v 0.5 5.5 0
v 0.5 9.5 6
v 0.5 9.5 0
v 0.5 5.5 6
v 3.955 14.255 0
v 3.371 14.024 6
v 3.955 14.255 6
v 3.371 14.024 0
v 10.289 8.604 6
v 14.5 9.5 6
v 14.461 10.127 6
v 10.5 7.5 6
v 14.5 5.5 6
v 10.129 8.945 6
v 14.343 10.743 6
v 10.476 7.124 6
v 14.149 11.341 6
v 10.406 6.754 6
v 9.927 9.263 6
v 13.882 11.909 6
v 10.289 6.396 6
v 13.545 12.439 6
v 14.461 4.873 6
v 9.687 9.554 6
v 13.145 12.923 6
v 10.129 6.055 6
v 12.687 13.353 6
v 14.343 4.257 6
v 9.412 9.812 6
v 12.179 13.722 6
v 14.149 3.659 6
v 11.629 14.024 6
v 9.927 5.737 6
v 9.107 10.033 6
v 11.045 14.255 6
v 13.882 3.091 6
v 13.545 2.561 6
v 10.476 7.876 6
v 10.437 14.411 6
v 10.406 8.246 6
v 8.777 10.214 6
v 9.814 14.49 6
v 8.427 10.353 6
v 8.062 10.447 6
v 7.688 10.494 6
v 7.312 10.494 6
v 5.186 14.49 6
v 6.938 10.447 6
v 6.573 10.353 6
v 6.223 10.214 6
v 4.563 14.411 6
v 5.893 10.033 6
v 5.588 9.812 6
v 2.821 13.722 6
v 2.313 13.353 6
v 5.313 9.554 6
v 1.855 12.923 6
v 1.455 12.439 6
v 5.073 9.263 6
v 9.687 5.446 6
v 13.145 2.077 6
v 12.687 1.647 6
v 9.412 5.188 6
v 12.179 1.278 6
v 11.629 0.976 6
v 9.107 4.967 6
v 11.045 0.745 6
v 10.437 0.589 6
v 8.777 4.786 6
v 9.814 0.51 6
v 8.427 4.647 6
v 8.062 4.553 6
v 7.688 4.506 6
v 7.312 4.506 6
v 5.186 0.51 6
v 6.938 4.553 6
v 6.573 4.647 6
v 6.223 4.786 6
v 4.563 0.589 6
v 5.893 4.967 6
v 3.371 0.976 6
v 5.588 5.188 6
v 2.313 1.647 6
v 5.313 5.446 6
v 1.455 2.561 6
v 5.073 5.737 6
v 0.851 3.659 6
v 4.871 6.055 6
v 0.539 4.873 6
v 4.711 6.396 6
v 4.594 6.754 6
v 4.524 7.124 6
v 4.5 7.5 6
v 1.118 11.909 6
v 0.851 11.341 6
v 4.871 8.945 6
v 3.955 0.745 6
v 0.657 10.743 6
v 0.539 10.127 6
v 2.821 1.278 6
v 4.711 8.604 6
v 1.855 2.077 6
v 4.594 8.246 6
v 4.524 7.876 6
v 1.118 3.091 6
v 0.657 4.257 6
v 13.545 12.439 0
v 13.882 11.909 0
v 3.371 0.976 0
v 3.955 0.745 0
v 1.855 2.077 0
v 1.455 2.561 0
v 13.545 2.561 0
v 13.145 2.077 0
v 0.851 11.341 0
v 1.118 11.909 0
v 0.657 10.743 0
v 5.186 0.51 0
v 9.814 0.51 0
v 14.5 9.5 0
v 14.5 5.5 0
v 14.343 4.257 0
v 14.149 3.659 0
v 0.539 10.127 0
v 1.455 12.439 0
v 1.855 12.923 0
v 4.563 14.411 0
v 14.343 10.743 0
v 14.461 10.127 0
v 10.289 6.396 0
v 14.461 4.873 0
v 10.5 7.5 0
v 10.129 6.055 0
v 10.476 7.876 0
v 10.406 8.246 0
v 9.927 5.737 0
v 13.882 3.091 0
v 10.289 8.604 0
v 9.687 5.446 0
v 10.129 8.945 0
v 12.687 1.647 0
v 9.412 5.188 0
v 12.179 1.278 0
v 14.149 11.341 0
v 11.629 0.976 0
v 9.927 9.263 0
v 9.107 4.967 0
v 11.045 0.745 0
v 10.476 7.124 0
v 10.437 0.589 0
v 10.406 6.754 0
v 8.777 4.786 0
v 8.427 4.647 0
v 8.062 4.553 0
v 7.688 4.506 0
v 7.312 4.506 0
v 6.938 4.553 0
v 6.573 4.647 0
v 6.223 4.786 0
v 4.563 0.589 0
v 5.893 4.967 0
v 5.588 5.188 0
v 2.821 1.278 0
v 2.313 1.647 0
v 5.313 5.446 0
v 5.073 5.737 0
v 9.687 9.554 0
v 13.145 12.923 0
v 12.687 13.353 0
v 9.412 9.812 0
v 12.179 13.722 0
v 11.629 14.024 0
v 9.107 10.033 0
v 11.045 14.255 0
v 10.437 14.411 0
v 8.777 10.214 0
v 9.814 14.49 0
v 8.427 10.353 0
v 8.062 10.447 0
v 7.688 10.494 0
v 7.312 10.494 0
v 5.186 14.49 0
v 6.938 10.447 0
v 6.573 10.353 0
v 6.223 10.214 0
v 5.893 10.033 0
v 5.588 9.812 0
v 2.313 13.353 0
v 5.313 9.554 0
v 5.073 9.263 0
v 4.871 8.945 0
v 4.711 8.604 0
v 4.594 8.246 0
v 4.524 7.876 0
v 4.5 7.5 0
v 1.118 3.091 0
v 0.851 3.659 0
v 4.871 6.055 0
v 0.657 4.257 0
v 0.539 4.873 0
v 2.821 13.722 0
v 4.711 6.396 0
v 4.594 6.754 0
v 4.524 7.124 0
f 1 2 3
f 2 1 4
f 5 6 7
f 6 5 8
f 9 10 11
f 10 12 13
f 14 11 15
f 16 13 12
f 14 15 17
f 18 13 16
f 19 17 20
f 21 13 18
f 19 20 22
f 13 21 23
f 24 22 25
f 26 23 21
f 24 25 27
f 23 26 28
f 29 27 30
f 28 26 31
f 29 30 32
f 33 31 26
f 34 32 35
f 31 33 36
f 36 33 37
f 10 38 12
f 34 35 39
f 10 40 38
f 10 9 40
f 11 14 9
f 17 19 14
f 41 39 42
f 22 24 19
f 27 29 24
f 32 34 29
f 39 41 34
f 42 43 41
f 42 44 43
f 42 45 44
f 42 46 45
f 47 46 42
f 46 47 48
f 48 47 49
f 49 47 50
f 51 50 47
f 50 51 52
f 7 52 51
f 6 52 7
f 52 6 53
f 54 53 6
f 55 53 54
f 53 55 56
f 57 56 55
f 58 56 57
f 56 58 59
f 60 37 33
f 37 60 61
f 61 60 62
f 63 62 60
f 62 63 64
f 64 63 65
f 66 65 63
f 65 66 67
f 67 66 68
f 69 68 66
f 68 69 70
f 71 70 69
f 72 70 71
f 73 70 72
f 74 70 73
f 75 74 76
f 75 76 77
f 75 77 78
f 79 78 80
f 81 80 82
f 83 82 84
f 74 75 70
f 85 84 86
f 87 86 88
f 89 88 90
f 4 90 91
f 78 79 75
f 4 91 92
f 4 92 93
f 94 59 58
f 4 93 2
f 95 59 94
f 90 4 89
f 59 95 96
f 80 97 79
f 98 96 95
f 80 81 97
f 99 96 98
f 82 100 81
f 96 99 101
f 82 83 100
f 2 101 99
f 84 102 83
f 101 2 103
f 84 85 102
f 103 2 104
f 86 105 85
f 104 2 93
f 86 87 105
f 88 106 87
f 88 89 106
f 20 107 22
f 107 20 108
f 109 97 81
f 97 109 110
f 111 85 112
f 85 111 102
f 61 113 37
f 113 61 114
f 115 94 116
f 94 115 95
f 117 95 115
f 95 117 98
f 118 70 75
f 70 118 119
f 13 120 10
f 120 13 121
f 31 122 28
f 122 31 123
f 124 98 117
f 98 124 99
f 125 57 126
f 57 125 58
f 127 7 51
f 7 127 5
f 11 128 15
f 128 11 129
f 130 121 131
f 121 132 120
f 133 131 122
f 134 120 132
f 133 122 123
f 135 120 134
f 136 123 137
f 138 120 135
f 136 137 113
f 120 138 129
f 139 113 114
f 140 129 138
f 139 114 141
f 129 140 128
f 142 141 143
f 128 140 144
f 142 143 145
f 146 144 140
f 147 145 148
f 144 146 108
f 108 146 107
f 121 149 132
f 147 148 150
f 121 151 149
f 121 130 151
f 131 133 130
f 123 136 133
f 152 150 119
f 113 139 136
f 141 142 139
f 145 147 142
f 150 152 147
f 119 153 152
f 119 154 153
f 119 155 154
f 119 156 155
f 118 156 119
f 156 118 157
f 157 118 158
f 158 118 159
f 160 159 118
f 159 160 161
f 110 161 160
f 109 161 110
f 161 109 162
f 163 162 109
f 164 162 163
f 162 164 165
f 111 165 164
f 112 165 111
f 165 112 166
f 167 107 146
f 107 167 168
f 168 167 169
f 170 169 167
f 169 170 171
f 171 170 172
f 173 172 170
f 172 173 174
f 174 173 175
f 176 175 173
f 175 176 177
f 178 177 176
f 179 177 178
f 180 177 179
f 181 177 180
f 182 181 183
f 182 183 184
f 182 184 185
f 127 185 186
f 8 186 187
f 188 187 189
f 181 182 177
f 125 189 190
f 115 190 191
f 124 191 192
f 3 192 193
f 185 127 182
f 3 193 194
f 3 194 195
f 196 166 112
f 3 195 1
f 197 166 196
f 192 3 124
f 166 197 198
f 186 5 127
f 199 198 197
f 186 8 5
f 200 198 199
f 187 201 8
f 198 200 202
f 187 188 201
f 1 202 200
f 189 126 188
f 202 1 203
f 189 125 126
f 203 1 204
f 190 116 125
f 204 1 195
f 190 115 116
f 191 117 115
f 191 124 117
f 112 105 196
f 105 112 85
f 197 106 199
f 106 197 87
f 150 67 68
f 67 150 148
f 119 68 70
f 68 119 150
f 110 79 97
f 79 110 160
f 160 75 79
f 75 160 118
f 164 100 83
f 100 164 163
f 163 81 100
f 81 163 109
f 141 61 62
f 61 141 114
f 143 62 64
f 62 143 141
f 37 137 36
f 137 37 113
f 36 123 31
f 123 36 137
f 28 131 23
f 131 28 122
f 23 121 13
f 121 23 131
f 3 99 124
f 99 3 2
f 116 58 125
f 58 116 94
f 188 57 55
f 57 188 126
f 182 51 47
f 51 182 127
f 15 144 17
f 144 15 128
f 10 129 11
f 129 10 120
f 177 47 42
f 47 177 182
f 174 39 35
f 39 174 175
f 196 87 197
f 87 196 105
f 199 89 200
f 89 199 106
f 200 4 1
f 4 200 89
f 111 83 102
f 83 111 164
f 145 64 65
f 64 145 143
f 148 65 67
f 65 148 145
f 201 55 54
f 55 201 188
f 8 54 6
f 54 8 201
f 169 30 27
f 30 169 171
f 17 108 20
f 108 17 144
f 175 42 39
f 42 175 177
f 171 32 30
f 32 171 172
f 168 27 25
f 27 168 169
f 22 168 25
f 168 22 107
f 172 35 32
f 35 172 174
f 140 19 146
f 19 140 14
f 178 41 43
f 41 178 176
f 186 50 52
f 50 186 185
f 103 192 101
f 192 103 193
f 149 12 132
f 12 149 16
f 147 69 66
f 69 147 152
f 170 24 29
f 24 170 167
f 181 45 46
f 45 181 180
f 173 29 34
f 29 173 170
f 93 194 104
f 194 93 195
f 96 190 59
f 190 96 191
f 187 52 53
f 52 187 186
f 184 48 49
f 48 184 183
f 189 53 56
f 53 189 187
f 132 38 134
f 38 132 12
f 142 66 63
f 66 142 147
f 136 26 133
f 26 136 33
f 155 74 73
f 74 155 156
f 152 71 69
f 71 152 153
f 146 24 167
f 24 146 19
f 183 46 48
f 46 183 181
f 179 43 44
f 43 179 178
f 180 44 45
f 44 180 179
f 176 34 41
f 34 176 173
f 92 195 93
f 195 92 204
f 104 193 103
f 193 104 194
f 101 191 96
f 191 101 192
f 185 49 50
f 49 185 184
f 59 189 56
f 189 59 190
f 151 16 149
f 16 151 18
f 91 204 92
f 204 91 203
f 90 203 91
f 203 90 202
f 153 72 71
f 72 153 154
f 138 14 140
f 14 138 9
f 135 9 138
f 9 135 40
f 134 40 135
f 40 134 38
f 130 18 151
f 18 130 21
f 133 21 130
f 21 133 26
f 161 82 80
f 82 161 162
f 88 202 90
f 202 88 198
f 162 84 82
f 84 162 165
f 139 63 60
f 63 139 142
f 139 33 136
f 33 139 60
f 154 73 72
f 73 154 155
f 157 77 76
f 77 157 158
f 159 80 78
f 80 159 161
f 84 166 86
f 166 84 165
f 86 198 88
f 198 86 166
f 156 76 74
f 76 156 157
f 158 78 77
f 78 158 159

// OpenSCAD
// Generated by SolidPython 1.1.3 on 2023-01-30 14:06:48
$fn = 50;


difference() {
	union() {
		translate(v = [7.5000000000, 7.5000000000, 0]) {
			rotate(a = [0, 0, 0]) {
				hull() {
					translate(v = [-2.0000000000, 2.0000000000, 0]) {
						rotate(a = [0, 0, 0]) {
							translate(v = [0, 0, 0]) {
								rotate(a = [0, 0, 0]) {
									cylinder(h = 6, r = 5);
								}
							}
						}
					}
					translate(v = [2.0000000000, 2.0000000000, 0]) {
						rotate(a = [0, 0, 0]) {
							translate(v = [0, 0, 0]) {
								rotate(a = [0, 0, 0]) {
									cylinder(h = 6, r = 5);
								}
							}
						}
					}
					translate(v = [-2.0000000000, -2.0000000000, 0]) {
						rotate(a = [0, 0, 0]) {
							translate(v = [0, 0, 0]) {
								rotate(a = [0, 0, 0]) {
									cylinder(h = 6, r = 5);
								}
							}
						}
					}
					translate(v = [2.0000000000, -2.0000000000, 0]) {
						rotate(a = [0, 0, 0]) {
							translate(v = [0, 0, 0]) {
								rotate(a = [0, 0, 0]) {
									cylinder(h = 6, r = 5);
								}
							}
						}
					}
				}
			}
		}
	}
	union() {
		translate(v = [7.5000000000, 7.5000000000, 0]) {
			rotate(a = [0, 0, 0]) {
				translate(v = [0, 0, -50]) {
					rotate(a = [0, 0, 0]) {
						cylinder(h = 100, r = 3.0000000000);
					}
				}
			}
		}
	}
}
/***********************************************
*********      SolidPython code:      **********
************************************************
 
from solid import *
import os
import subprocess

import oomB

import opsc_library_gen

mode = "laser"
#mode = "3d_print"

defined_objects = {}

radius_dict = {}
countersunk_dict = {}


def set_mode(m):
    global mode
    mode = m
    radius_dict['M6'] = 6.5/2
    radius_dict['M3'] = 3.3/2
    if mode == "laser":
        radius_dict['M6'] = 6/2
        radius_dict['M3'] = 3/2

    countersunk_dict['M3'] = {}
    countersunk_dict['M3']['little_rad'] = radius_dict['M3']
    countersunk_dict['M3']['big_rad'] = (5.5+0.6)/2
    if mode == "laser":
        countersunk_dict['M3']['big_rad'] = (4.75+0.6)/2
        countersunk_dict['M3']['little_rad'] = (4.75+0.6)/2

    countersunk_dict['M3']['height'] = 1.7


def opsc_make_object(filename, objects, save_type="none",resolution=50, layers = 1, tilediff = 200, mode="laser"):
    set_mode(mode)
    save_type = save_type.lower()
    os.makedirs(os.path.dirname(filename), exist_ok=True)
    final_object = opsc_get_object(objects)
    # Save the final object to the specified filename    
    scad_render_to_file(final_object, filename, file_header='$fn = %s;' % resolution, include_orig_code=True)
    if mode == "laser":
        filename_laser = filename.replace(".scad","-flat.scad")
        scad_render_to_file(getLaser(final_object, layers=layers, tilediff=tilediff), filename_laser, file_header='$fn = %s;' % resolution, include_orig_code=True)
        if save_type == "all":
            saveToAll(filename_laser)
        elif save_type == "dxf":
            saveToDxf(filename_laser)
    if save_type == "all":
        saveToAll(filename)
    elif save_type == "dxf":
        saveToDxf(filename)


def opsc_get_object(objects):
    # Create the solidpython objects
    positive_objects = [get_opsc_item(obj) for obj in objects if obj['type'] == 'positive']
    negative_objects = [get_opsc_item(obj) for obj in objects if obj['type'] == 'negative']
    # Union the positive objects
    positive_object = union()(*positive_objects)
    # Union the negative objects
    negative_object = union()(*negative_objects)
    # Create the final object by subtracting the negative objects from the positive objects
    return difference()(positive_object, negative_object)

def get_opsc_item(params):
    # A dictionary to map radius string values to numerical values
    #radius_dict = {'small': 5, 'medium': 10, 'large': 15}
    # An array of function names for basic shapes
    basic_shapes = ['cube', 'sphere', 'cylinder']
    
    # An array of function names for other shapes
    other_shapes = ['hole', 'slot', 'rounded_rectangle', 'countersunk']
    


    # Convert radius to r if present, and remove radius from the params dictionary
    if 'radius' in params:
        if isinstance(params['radius'], str):
            # Use the radius_dict to map the radius string value to a numerical value
            params['r'] = radius_dict[params['radius']]
        else:
            params['r'] = params['radius']
        del params['radius']
    

    # Check if the object type is a basic shape
    if params['shape'] in basic_shapes:
        # Remove shape and unexpected dictionary values
        allowed_keys = {'size', 'r', 'r1', 'r2', 'd', 'h', 'rw', 'rh', 'dw', 'dh'}
        shape_params = {k: v for k, v in params.items() if k in allowed_keys}

        # Call the corresponding function for the shape parameter, using ** notation to pass the shape_params dictionary as keyword arguments
        return get_opsc_transform(params,globals()[params['shape']](**shape_params))
    
    # If the object type is not a basic shape, check if it's a defined object or one of the other shapes
    elif params['shape'] in other_shapes:
        # Call the corresponding function for the shape parameter, passing the params dictionary as an argument
        p2 = copy.deepcopy(params)
        p2["pos"] = [0,0,0]
        return get_opsc_transform(params,globals()[params['shape']](p2))
    
    # If the object is not a basic shape or a defined object, try to import it from a .scad file
    else:
        obj = defined_objects[params['shape']]
        return get_opsc_transform(params,obj)

def get_opsc_transform(params, solid_obj):
    # Rotate the object based on the 'rot' field in the params dictionary, or the 'rotX', 'rotY', and 'rotZ' fields if 'rot' is not present
    rot = params.get('rot', [])
    if rot:
        rotX, rotY, rotZ = rot
    else:
        rotX = params.get('rotX', 0)
        rotY = params.get('rotY', 0)
        rotZ = params.get('rotZ', 0)
    solid_obj = rotate([rotX, rotY, rotZ])(solid_obj)

    # Translate the object based on the 'pos' field in the params dictionary, or the 'x', 'y', and 'z' fields if 'pos' is not present
    pos = params.get('pos', [])
    if pos:
        x, y, z = pos
    else:
        x = params.get('x', 0)
        y = params.get('y', 0)
        z = params.get('z', 0)
    solid_obj = translate([x, y, z])(solid_obj)
    return solid_obj


import random

def opsc_easy_array(type, shape, repeats, pos_start, shift_arr, **kwargs):
    for i in range(0,3):
        repeats.append(1)
        pos_start.append(0)
        shift_arr.append(0)
    return_objects = []

    for x in range(0,repeats[0]):
        for y in range(0,repeats[1]):
            for z in range(0,repeats[2]):
                return_objects.append(opsc_easy(type, shape, pos=[pos_start[0]+x*shift_arr[0],pos_start[1]+y*shift_arr[1],pos_start[2]+z*shift_arr[2]], **kwargs))
    return return_objects                



def opsc_easy(type, shape, **kwargs):
    obj = {
        'type': type,
        'shape': shape
    }
    for param in ['size', 'r', 'r1', 'r2', 'd', 'h', 'rw', 'rh', 'dw', 'dh', 'pos', 'x', 'y', 'z', 'rot', 'rotX', 'rotY', 'rotZ', "w"]:
        if param in kwargs:
            obj[param] = kwargs[param]
    return obj

def hole(params):
    p2 = copy.deepcopy(params)  
    # Check if the radius is a string and replace it with the corresponding value from the dictionary
    if isinstance(p2['r'], str):
        p2['r'] = radius_dict[p2['r']]
    
    # Set the height to 100 if not specified
    if 'h' not in p2:
        p2['h'] = 100
        p2["pos"] = [0,0,-50]
    p2["center"] = True
    # Create the cylinder object
    p2["shape"] = "cylinder"
    p2["type"] = "positive"

    return get_opsc_item(p2)

import copy

def countersunk(params):
    p2 = copy.deepcopy(params)
    counter_rad = p2['r']
    p2['r'] = radius_dict[p2['r']]
    hp = copy.deepcopy(p2)
    hp["type"] = "positive"
    hp["shape"] = "hole"
    del hp["rot"]
    hol = get_opsc_item(hp)
    
    cp = copy.deepcopy(p2)
    cp["h"] = countersunk_dict[counter_rad]["height"]
    cp["r2"] = countersunk_dict[counter_rad]["little_rad"]
    cp["r1"] = countersunk_dict[counter_rad]["big_rad"]
    del cp["r"]
    del cp["rot"]
    cp["type"] = "positive"
    cp["shape"] = "cylinder"
    cp["pos"] = [0,0,0]

    top = get_opsc_item(cp)
    return union()(hol,top)



def slot(params):  
    p2 = copy.deepcopy(params) 
    if isinstance(p2['r'], str):
        p2['r'] = radius_dict[p2['r']]
    p2["type"] = "positive"
    p2["shape"] = "hole"
    del p2["rot"]
    p2["pos"] = [0,0,0]
    left = copy.deepcopy(p2)
    right = copy.deepcopy(p2)
    left["pos"][0] = p2["w"] / 2 - p2["r"] 
    
    right["pos"][0] = -p2["w"] / 2 + p2["r"] 
    pass
    leftObj = get_opsc_item(left)
    rightObj = get_opsc_item(right)
    return hull()(leftObj, rightObj)

def rounded_rectangle(params):   
    p2 = copy.deepcopy(params) 
    p2["h"] = p2["size"][2]
    p2["pos"] = p2.get("pos", [0, 0, 0]) 
    p2["type"] = "positive"
    p2["shape"] = "hole"
    p2["pos"] = [0,0,0]
    
    if 'rot' in p2:
        del p2["rot"]   
    if 'r' not in p2:
        p2["r"] = 5 
    tl = copy.deepcopy(p2)
    tr = copy.deepcopy(p2)
    bl = copy.deepcopy(p2)
    br = copy.deepcopy(p2)
    tl["pos"][0] = -(p2["size"][0] - p2["r"]*2)/2
    tl["pos"][1] = (p2["size"][1] - p2["r"]*2)/2
    tr["pos"][0] = (p2["size"][0] - p2["r"]*2)/2
    tr["pos"][1] = (p2["size"][1] - p2["r"]*2)/2
    bl["pos"][0] = -(p2["size"][0] - p2["r"]*2)/2
    bl["pos"][1] = -(p2["size"][1] - p2["r"]*2)/2
    br["pos"][0] = (p2["size"][0] - p2["r"]*2)/2
    br["pos"][1] = -(p2["size"][1] - p2["r"]*2)/2
    del tl["size"]
    del tr["size"]
    del bl["size"]
    del br["size"]
    tlo = get_opsc_item(tl)
    tro = get_opsc_item(tr)
    blo = get_opsc_item(bl)
    bro = get_opsc_item(br)    
    return hull()(tlo, tro, blo, bro)



def import_scad_object(filename):
    # Import the .scad file and convert it to a solidpython object
    #filename = "parts"
    obj = import_scad(filename)
    return obj.main()
    


import os
import solid as solidpython

# A dictionary to store the defined objects


def load_scad_objects():
    opsc_library_gen.gen_library(defined_objects)

import random

def test(num_objects):
    objects = []
    for i in range(num_objects):
        # Choose a random shape
        #shape = random.choice(['cube', 'sphere', 'cylinder', 'hole', 'slot', "rounded_rectangle"])
        shape = random.choice(["rounded_rectangle"])

        # Choose a random type
        type = random.choice(['positive', 'negative'])
        
        # Create an empty object dictionary
        obj = {'shape': shape, 'type': type}
        
        # Set shape-specific parameters
        if obj['shape'] in ['cube']:
            obj['size'] =  [random.uniform(5, 15), random.uniform(5, 15), random.uniform(5, 15)]
        if obj['shape'] in ['rounded_rectangle']:
            obj['size'] =  [random.uniform(5, 15), random.uniform(5, 15), random.uniform(5, 15)]
            obj['r'] = random.uniform(0.5, 5)
        elif obj['shape'] == 'sphere':
            obj['r'] = random.uniform(5, 15)
        elif obj['shape'] in ['cylinder', 'hole']:
            obj['r'] = random.uniform(0.5, 5)
            obj['h'] = random.uniform(5, 15)
        elif obj['shape'] == 'slot':
            obj['r'] = random.uniform(0.5, 5)
            obj['h'] = random.uniform(5, 15)
            obj['w'] = random.uniform(5, 15)
        
        # Set a random position and rotation
        obj['pos'] = [random.uniform(-20, 20), random.uniform(-20, 20), random.uniform(-20, 20)]
        obj['rot'] = [random.uniform(-180, 180), random.uniform(-180, 180), random.uniform(-180, 180)]
        
        # Add the object to the list
        objects.append(obj)
    return objects

####### old file saving
def saveToAll(fileIn):
    saveToDxf(fileIn)
    saveToPng(fileIn)
    saveToStl(fileIn)
    saveToSvg(fileIn)

def saveToDxf(fileIn, fileOut="", copy_to_laser=True):
    if fileOut == "":
        fileOut = fileIn.replace(".scad",".dxf")
    saveToFile(fileIn, fileOut)


    
def saveToPng(fileIn, fileOut="",extra="--render"):
    if fileOut == "":
        fileOut = fileIn.replace(".scad",".png")
    saveToFile(fileIn, fileOut)

def saveToStl(fileIn, fileOut=""):
    if fileOut == "":
        fileOut = fileIn.replace(".scad",".stl")
    saveToFile(fileIn, fileOut)
    
def saveToSvg(fileIn, fileOut=""):
    if fileOut == "":
        fileOut = fileIn.replace(".scad",".svg")
    saveToFile(fileIn, fileOut)

def saveToFile(fileIn, fileOut,extra=""):
    #extra = extra + " --colorscheme Tomorrow"

    launchStr = 'openscad -o "' + fileOut + '"' + extra + ' "' + fileIn + '"'
    if ".png" in fileOut:
        launchStr = launchStr + " --render"
    print("            saveToFile launch string: " + launchStr)
    subprocess.run(launchStr)
    x=0

def getLaser(final_object,start=1.5,layers=1,thickness=3,tilediff=200):
        rv= []

        for x in range(layers):
            rv.append(translate([0,x*tilediff,0])(
                    projection()(
                        intersection()(translate([-500,-500,start+x*thickness])(cube(size=[1000,1000,0.1])),
                            final_object
                        )
                    )
            )
            )
            
        return union()(rv)

set_mode("laser")
load_scad_objects() 
 
************************************************/
